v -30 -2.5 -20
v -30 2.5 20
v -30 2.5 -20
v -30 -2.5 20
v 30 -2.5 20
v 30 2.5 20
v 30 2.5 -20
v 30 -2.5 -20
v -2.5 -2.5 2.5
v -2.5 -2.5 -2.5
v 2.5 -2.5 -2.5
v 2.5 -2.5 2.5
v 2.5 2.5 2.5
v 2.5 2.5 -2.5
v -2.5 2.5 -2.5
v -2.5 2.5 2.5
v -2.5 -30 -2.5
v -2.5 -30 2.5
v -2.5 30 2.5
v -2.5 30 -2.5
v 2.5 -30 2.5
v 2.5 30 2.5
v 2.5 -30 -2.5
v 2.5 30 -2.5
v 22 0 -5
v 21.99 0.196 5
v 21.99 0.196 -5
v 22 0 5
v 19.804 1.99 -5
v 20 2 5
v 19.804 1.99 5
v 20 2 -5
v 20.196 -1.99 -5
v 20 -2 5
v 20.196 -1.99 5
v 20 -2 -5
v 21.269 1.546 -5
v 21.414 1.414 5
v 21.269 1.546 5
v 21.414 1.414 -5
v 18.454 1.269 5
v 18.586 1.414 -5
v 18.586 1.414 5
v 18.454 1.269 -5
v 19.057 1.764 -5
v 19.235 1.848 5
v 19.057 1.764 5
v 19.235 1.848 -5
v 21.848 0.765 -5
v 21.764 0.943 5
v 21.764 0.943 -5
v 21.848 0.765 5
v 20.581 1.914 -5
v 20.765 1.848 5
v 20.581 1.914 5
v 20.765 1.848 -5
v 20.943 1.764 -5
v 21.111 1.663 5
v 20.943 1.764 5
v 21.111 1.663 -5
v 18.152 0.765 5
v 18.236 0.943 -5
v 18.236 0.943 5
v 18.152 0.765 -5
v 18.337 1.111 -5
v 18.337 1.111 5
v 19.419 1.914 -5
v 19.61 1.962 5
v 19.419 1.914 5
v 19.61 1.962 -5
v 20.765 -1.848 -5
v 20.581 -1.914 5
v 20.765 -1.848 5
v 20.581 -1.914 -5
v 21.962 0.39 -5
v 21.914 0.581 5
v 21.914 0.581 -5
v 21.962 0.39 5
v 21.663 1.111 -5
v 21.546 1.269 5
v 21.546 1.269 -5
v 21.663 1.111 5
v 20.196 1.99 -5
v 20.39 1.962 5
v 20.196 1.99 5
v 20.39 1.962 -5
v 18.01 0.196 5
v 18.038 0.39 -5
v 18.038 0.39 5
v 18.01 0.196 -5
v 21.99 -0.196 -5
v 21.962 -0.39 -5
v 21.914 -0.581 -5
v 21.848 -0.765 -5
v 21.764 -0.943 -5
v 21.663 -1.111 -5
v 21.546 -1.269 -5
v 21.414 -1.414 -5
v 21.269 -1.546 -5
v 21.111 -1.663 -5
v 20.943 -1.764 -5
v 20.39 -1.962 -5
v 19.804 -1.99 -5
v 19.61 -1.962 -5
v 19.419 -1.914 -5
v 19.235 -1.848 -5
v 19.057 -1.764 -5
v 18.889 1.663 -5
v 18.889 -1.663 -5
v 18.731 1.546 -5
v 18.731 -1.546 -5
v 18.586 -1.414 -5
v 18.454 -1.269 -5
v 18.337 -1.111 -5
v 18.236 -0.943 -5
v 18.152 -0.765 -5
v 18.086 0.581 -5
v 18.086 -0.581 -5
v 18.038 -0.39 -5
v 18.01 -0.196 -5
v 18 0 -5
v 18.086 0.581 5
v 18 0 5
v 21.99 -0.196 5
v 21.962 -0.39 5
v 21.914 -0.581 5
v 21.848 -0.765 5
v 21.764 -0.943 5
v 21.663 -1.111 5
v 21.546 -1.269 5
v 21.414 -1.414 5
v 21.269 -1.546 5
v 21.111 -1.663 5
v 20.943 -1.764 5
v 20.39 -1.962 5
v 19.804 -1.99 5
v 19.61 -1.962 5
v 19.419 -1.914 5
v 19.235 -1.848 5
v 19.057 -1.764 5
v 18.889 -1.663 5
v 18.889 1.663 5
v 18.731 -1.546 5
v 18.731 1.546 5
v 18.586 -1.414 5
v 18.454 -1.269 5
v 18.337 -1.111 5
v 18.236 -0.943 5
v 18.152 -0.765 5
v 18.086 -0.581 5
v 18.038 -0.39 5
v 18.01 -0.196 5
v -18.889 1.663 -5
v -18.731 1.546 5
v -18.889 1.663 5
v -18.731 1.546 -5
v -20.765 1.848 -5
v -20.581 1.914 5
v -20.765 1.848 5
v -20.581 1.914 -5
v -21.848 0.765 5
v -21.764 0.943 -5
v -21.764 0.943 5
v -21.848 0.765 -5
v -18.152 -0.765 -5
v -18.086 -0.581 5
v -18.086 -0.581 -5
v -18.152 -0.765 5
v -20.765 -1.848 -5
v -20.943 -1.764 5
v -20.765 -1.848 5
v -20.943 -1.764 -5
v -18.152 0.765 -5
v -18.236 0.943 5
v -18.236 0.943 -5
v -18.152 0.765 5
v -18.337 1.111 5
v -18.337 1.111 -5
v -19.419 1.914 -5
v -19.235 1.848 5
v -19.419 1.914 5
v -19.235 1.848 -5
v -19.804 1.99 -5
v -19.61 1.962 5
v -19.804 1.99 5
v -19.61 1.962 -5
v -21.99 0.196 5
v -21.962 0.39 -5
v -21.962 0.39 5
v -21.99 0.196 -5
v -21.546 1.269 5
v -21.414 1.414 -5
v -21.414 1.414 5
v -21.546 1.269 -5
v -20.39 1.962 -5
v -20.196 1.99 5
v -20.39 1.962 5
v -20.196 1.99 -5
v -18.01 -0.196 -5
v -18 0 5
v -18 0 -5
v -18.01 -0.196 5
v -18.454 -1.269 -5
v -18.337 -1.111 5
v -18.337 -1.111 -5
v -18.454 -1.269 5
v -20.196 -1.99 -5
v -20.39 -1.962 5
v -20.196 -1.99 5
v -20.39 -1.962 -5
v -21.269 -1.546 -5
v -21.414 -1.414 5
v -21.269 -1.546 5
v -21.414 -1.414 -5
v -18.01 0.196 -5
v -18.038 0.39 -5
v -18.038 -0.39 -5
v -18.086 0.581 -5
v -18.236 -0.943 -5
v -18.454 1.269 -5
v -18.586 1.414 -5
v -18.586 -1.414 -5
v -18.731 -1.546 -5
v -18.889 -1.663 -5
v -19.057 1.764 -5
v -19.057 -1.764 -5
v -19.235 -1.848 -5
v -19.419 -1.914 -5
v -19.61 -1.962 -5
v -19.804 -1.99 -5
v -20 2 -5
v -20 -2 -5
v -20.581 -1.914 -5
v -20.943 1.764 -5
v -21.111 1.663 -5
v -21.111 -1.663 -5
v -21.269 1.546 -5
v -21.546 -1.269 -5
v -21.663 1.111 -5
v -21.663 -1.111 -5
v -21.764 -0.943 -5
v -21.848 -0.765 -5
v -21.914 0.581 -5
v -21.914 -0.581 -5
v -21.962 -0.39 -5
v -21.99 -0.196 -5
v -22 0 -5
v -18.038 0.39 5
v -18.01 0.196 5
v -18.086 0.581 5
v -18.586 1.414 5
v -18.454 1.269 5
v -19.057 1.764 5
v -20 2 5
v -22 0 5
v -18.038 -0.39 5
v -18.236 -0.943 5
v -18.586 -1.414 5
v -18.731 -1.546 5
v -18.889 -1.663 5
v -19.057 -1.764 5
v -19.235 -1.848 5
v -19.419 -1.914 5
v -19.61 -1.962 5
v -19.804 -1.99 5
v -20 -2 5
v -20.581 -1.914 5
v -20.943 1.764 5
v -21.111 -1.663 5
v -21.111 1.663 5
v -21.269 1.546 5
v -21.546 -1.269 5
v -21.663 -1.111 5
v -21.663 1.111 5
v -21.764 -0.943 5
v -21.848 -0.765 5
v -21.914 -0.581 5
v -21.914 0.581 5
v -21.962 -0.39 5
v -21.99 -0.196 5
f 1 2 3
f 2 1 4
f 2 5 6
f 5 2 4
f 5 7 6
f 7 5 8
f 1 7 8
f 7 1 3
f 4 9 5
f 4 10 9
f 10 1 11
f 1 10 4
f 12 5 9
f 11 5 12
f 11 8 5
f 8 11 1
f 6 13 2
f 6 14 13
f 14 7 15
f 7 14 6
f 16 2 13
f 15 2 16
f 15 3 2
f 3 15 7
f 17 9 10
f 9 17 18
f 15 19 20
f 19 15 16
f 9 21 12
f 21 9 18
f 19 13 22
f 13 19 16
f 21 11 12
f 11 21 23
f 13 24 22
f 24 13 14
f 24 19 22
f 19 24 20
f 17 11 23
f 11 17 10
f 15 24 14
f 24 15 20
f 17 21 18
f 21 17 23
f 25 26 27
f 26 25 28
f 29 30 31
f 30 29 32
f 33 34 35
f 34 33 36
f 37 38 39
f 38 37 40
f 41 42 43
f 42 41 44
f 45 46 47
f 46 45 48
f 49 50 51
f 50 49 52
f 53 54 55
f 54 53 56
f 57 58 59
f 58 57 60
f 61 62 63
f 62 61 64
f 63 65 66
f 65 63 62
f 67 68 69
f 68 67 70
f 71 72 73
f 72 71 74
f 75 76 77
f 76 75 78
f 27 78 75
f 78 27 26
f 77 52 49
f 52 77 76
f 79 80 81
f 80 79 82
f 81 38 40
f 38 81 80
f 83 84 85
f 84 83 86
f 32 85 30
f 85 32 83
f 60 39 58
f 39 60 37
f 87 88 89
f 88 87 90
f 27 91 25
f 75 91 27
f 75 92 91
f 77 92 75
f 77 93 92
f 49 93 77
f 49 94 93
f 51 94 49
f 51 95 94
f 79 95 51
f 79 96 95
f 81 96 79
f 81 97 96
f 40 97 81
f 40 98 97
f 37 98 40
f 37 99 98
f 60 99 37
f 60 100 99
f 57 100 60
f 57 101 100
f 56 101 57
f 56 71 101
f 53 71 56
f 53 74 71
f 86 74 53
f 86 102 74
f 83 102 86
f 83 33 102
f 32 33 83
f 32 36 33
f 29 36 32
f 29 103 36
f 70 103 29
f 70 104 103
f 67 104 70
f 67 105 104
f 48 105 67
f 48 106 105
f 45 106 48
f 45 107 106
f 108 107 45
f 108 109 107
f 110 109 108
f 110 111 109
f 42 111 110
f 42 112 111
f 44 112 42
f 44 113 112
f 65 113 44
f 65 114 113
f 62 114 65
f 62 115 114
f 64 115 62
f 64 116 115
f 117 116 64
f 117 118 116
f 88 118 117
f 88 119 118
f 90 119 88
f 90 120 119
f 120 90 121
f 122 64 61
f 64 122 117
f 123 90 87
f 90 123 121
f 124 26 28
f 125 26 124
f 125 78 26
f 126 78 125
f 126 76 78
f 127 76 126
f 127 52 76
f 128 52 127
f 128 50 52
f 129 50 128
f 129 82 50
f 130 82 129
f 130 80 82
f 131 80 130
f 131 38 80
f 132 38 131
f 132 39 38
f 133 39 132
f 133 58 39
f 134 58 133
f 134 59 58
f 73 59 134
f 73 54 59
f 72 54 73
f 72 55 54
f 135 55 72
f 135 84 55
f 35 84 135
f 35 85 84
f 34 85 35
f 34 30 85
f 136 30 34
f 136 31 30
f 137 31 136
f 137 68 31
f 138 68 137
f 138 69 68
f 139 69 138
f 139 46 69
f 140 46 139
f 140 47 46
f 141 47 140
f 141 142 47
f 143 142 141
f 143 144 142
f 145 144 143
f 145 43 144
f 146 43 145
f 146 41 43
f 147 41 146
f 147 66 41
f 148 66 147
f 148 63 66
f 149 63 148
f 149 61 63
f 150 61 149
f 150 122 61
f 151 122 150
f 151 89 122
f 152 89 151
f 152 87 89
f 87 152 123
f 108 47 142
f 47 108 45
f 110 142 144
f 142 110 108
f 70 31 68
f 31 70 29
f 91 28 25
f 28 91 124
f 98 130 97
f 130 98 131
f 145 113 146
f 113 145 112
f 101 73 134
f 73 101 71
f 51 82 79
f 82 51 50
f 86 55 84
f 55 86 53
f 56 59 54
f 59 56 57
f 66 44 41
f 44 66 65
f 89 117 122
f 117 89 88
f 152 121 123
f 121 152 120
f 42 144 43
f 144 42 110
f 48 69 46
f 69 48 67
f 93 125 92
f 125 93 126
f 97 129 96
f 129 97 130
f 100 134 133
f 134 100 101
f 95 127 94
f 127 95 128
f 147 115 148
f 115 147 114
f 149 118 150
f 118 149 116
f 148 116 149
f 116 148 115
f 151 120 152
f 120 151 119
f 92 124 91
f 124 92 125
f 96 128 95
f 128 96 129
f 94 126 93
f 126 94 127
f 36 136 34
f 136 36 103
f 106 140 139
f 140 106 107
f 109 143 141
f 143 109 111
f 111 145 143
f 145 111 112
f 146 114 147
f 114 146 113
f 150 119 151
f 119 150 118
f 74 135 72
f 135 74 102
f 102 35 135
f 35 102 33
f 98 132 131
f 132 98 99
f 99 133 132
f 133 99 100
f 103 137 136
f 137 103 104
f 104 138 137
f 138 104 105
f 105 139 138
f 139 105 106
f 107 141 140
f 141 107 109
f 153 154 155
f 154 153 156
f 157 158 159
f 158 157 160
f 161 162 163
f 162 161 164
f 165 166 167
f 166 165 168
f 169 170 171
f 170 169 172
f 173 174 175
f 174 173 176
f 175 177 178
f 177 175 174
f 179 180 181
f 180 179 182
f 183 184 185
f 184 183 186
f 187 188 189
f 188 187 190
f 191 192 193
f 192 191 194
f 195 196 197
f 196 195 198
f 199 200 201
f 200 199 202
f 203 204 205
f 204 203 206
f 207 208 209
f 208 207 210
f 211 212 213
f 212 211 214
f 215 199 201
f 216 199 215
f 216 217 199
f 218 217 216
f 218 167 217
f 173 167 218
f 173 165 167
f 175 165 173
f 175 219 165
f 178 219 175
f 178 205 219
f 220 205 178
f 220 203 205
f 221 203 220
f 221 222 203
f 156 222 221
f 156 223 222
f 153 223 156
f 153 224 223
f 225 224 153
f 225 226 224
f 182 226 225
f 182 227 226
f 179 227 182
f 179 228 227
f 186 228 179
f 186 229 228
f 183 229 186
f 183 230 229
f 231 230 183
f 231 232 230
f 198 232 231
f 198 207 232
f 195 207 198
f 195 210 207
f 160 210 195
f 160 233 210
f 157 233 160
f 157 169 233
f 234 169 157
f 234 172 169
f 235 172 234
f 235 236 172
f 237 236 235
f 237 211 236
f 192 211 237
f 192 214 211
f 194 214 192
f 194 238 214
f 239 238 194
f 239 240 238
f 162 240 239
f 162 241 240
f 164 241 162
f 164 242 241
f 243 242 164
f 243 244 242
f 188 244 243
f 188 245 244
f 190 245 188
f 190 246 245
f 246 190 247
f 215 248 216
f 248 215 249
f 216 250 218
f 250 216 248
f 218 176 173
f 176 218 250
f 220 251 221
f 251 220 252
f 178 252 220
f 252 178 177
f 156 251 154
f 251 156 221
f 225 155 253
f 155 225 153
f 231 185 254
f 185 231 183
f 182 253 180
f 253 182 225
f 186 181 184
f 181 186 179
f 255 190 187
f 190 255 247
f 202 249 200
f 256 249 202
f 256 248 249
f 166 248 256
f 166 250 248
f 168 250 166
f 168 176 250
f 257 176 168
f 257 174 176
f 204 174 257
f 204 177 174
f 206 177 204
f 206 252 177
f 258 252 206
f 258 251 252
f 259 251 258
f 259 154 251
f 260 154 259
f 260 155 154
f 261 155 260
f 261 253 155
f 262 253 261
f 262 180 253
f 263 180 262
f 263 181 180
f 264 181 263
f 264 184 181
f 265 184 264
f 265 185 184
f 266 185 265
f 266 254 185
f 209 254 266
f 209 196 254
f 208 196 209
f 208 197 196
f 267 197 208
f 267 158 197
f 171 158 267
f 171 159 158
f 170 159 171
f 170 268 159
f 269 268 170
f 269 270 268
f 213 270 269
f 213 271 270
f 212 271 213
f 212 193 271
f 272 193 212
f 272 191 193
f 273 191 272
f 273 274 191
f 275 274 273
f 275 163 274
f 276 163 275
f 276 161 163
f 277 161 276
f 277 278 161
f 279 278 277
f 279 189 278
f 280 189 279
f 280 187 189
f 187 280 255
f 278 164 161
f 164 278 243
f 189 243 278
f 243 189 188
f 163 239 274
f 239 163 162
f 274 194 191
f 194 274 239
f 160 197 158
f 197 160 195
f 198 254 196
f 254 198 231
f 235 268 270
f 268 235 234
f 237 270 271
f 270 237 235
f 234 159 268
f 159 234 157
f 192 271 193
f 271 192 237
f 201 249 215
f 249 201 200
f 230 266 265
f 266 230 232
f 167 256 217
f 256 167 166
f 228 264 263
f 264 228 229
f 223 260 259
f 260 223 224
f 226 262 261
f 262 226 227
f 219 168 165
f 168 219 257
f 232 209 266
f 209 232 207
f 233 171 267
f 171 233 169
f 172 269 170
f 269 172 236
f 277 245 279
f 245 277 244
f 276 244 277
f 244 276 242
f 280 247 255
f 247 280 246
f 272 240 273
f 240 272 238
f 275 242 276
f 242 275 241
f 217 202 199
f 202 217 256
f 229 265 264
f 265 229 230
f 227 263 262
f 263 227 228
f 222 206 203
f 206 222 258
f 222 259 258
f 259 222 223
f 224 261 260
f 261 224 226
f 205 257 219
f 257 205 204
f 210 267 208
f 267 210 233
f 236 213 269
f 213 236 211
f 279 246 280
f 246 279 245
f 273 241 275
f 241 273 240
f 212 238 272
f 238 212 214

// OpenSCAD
module mounting_bracket() {
  difference() {
    union() {
      cube([60, 5, 40], center = true);
      cube([5, 60, 5], center = true);
    }
    translate([20, 0, 0]) cylinder(h = 10, d = 4, center = true, $fn = 64);
    translate([-20, 0, 0]) cylinder(h = 10, d = 4, center = true, $fn = 64);
  }
}

mounting_bracket();
